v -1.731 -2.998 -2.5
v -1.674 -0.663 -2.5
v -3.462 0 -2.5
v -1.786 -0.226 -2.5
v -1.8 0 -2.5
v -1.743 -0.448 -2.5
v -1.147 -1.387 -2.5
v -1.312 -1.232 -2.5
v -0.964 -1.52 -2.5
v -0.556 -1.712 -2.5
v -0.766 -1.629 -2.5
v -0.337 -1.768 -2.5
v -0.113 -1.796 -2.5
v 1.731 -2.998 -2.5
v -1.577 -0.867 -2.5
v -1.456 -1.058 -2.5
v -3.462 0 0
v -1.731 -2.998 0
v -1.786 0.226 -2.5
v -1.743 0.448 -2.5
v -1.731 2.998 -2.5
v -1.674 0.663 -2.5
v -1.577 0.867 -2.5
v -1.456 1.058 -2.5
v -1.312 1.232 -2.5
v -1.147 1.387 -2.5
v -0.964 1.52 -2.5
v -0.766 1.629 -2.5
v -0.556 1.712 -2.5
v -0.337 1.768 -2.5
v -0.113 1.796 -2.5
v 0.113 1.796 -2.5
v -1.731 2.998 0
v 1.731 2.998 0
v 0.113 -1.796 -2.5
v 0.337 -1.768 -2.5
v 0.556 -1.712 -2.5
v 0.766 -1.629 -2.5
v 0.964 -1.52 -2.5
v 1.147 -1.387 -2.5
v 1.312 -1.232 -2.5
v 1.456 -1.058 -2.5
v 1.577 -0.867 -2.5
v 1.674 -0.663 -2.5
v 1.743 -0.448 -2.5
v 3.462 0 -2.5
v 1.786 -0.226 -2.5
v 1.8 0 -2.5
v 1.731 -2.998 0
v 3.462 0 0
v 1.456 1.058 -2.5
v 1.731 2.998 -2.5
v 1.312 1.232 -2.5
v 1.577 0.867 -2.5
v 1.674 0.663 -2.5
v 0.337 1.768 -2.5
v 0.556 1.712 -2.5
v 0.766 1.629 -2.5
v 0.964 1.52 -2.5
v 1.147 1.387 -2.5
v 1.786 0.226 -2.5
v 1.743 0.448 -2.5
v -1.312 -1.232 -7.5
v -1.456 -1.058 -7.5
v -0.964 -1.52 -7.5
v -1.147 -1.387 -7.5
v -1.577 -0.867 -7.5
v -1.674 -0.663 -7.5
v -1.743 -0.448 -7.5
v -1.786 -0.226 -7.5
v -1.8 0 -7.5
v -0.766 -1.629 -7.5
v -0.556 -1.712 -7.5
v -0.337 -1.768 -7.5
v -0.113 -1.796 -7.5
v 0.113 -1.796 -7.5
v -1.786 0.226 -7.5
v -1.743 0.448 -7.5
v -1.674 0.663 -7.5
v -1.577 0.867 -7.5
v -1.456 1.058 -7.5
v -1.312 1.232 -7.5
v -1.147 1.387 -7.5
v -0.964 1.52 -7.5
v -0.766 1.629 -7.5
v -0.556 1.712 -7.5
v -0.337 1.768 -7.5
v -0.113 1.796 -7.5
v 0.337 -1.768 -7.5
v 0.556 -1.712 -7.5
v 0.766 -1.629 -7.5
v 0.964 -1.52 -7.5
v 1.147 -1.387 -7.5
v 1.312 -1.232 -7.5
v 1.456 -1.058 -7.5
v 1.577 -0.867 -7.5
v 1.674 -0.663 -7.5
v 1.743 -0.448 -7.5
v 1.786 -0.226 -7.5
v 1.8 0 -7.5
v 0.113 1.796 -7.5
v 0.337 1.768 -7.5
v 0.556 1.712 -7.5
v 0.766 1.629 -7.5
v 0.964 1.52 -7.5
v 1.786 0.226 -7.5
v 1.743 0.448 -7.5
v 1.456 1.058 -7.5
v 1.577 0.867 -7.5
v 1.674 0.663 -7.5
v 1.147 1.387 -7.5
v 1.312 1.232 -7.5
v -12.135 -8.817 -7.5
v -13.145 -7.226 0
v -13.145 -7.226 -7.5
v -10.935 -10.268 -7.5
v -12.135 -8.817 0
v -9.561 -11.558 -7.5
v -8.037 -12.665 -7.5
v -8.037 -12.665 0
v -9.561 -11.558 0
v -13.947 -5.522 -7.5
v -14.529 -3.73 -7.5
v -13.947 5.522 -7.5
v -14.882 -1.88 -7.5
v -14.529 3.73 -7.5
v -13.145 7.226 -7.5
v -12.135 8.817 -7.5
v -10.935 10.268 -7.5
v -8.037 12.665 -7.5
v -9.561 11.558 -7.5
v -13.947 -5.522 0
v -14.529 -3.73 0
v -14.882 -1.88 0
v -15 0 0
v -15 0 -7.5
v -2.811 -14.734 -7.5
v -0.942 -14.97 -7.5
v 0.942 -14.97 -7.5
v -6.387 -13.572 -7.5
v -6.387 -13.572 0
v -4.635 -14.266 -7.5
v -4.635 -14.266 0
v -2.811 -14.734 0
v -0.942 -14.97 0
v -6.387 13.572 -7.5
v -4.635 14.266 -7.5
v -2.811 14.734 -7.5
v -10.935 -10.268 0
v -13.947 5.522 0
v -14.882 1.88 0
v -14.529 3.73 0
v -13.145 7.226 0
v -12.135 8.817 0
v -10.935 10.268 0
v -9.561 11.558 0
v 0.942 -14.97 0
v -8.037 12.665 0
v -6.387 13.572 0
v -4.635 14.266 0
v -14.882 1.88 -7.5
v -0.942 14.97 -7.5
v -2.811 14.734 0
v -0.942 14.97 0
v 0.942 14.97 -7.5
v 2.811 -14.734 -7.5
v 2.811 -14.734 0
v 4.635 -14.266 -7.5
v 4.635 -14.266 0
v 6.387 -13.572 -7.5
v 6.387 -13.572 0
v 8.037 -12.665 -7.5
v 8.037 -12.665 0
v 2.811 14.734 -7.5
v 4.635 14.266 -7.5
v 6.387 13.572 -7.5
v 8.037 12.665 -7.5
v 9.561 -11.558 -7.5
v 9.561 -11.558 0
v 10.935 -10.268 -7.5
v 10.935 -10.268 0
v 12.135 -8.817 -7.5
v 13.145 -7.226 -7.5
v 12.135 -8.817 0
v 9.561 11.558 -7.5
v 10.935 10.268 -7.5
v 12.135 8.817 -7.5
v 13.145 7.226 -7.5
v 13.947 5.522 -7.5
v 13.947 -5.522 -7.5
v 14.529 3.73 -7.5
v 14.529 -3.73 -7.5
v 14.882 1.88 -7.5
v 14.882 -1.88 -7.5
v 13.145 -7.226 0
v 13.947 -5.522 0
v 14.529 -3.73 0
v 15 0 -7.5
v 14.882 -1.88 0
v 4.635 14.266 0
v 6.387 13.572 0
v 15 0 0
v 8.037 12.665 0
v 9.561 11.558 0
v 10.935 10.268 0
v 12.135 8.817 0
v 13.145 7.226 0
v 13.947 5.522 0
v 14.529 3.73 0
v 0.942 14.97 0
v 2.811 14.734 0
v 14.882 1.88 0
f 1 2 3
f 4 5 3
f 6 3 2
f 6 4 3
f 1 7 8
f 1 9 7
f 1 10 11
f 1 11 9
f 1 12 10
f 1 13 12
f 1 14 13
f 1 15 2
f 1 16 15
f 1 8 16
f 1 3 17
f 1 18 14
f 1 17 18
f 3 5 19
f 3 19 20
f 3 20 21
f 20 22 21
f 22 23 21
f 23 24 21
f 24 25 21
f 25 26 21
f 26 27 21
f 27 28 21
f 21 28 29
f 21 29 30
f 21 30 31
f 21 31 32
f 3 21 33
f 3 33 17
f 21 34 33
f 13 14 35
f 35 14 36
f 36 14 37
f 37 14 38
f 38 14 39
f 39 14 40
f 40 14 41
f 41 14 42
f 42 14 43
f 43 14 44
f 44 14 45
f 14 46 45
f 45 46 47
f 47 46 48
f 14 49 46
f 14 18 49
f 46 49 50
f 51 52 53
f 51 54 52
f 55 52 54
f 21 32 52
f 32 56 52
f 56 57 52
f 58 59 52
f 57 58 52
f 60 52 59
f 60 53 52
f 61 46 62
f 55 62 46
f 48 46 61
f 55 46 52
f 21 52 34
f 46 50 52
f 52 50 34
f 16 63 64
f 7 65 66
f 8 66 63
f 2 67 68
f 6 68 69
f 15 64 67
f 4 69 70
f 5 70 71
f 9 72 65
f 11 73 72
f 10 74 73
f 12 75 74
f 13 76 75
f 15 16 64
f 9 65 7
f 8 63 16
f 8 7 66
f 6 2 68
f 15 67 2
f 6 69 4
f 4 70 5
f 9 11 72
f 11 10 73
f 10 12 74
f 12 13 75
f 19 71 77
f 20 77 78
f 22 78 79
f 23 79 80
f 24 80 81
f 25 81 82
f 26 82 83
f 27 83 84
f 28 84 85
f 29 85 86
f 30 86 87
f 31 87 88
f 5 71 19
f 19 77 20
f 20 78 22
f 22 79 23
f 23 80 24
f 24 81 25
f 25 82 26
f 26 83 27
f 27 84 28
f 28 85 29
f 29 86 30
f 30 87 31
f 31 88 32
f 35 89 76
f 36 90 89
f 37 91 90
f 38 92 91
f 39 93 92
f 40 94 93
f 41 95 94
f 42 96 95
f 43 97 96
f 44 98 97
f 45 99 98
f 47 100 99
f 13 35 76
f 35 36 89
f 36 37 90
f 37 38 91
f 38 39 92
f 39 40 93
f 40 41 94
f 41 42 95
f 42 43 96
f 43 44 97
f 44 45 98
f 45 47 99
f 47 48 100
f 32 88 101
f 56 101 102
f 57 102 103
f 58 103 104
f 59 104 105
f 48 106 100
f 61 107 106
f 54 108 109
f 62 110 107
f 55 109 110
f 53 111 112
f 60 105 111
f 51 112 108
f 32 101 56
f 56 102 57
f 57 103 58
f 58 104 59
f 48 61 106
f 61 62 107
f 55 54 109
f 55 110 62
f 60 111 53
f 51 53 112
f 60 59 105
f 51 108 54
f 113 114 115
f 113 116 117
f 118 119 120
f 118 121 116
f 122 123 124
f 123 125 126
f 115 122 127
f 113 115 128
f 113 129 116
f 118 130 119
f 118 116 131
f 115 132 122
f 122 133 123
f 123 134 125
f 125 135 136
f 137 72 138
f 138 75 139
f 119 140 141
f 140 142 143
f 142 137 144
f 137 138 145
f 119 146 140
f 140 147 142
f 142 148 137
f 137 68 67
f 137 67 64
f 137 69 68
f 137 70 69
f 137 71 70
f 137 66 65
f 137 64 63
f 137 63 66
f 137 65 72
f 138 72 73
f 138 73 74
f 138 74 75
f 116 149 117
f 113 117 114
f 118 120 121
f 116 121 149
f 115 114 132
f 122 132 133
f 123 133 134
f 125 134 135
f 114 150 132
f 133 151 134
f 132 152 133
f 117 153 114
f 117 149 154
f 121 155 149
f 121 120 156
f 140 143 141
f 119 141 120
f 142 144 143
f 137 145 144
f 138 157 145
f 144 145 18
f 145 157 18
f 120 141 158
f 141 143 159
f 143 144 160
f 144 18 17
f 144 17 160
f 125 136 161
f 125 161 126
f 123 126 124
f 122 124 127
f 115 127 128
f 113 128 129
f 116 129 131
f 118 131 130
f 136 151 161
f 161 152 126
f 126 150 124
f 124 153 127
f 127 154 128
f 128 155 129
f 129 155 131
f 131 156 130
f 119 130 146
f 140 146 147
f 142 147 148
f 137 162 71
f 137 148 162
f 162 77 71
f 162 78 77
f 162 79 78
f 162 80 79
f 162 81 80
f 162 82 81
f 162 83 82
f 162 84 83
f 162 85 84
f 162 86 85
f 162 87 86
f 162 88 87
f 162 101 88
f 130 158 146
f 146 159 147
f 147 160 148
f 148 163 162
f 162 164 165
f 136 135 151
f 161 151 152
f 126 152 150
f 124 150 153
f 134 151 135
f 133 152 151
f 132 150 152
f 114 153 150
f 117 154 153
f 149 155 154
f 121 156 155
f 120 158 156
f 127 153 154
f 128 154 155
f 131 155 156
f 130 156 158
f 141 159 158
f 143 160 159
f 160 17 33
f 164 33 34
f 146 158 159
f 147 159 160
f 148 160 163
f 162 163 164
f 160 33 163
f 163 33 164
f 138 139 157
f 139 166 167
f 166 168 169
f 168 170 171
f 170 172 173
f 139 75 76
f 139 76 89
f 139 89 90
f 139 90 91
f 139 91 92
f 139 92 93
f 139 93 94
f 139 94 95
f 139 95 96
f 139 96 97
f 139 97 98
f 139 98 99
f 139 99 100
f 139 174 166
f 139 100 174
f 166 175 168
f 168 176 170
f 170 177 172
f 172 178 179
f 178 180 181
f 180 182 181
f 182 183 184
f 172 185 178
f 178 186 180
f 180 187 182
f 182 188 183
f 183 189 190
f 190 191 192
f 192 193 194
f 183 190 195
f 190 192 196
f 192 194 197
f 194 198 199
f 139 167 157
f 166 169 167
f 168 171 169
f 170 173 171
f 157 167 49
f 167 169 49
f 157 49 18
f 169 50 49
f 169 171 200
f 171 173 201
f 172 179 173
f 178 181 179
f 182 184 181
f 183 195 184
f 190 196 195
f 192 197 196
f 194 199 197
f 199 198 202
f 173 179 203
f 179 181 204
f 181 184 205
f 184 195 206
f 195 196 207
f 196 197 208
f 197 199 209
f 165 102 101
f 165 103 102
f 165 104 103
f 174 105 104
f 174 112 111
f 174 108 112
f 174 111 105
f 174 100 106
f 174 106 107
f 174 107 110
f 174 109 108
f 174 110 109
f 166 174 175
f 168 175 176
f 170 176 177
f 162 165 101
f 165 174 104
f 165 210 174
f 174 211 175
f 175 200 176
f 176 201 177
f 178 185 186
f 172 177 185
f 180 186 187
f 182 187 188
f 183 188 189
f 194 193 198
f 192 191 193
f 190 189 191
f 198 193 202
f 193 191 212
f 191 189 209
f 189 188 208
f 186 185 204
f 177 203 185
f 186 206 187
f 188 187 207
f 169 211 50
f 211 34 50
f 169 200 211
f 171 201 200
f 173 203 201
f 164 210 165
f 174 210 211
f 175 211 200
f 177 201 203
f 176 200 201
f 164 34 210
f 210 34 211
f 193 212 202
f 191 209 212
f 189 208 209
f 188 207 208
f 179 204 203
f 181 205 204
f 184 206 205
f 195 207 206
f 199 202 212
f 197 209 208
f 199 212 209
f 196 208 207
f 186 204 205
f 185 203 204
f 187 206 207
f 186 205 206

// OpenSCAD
$fn = 50;

difference() {
	union() {
		translate(v = [0, 0, -7.5]) {
			cylinder(h = 7.5, r = 15.0);
		}
	}
	union() {
		translate(v = [0, 0, 0]) {
			rotate(a = [0, 0, 0]) {
				difference() {
					union() {
						translate(v = [0, 0, -2.5]) {
							linear_extrude(height = 2.5) {
								polygon(points = [[3.4619999999999997, 0.0], [1.7310000000000003, 2.9981799479017264], [-1.7309999999999992, 2.9981799479017264], [-3.4619999999999997, 4.2397272186481365e-16], [-1.7310000000000014, -2.998179947901726], [1.7309999999999977, -2.9981799479017277]]);
							}
						}
					}
					union();
				}
			}
		}
		#translate(v = [0, 0, -100.0]) {
			cylinder(h = 200, r = 1.8);
		}
	}
}
